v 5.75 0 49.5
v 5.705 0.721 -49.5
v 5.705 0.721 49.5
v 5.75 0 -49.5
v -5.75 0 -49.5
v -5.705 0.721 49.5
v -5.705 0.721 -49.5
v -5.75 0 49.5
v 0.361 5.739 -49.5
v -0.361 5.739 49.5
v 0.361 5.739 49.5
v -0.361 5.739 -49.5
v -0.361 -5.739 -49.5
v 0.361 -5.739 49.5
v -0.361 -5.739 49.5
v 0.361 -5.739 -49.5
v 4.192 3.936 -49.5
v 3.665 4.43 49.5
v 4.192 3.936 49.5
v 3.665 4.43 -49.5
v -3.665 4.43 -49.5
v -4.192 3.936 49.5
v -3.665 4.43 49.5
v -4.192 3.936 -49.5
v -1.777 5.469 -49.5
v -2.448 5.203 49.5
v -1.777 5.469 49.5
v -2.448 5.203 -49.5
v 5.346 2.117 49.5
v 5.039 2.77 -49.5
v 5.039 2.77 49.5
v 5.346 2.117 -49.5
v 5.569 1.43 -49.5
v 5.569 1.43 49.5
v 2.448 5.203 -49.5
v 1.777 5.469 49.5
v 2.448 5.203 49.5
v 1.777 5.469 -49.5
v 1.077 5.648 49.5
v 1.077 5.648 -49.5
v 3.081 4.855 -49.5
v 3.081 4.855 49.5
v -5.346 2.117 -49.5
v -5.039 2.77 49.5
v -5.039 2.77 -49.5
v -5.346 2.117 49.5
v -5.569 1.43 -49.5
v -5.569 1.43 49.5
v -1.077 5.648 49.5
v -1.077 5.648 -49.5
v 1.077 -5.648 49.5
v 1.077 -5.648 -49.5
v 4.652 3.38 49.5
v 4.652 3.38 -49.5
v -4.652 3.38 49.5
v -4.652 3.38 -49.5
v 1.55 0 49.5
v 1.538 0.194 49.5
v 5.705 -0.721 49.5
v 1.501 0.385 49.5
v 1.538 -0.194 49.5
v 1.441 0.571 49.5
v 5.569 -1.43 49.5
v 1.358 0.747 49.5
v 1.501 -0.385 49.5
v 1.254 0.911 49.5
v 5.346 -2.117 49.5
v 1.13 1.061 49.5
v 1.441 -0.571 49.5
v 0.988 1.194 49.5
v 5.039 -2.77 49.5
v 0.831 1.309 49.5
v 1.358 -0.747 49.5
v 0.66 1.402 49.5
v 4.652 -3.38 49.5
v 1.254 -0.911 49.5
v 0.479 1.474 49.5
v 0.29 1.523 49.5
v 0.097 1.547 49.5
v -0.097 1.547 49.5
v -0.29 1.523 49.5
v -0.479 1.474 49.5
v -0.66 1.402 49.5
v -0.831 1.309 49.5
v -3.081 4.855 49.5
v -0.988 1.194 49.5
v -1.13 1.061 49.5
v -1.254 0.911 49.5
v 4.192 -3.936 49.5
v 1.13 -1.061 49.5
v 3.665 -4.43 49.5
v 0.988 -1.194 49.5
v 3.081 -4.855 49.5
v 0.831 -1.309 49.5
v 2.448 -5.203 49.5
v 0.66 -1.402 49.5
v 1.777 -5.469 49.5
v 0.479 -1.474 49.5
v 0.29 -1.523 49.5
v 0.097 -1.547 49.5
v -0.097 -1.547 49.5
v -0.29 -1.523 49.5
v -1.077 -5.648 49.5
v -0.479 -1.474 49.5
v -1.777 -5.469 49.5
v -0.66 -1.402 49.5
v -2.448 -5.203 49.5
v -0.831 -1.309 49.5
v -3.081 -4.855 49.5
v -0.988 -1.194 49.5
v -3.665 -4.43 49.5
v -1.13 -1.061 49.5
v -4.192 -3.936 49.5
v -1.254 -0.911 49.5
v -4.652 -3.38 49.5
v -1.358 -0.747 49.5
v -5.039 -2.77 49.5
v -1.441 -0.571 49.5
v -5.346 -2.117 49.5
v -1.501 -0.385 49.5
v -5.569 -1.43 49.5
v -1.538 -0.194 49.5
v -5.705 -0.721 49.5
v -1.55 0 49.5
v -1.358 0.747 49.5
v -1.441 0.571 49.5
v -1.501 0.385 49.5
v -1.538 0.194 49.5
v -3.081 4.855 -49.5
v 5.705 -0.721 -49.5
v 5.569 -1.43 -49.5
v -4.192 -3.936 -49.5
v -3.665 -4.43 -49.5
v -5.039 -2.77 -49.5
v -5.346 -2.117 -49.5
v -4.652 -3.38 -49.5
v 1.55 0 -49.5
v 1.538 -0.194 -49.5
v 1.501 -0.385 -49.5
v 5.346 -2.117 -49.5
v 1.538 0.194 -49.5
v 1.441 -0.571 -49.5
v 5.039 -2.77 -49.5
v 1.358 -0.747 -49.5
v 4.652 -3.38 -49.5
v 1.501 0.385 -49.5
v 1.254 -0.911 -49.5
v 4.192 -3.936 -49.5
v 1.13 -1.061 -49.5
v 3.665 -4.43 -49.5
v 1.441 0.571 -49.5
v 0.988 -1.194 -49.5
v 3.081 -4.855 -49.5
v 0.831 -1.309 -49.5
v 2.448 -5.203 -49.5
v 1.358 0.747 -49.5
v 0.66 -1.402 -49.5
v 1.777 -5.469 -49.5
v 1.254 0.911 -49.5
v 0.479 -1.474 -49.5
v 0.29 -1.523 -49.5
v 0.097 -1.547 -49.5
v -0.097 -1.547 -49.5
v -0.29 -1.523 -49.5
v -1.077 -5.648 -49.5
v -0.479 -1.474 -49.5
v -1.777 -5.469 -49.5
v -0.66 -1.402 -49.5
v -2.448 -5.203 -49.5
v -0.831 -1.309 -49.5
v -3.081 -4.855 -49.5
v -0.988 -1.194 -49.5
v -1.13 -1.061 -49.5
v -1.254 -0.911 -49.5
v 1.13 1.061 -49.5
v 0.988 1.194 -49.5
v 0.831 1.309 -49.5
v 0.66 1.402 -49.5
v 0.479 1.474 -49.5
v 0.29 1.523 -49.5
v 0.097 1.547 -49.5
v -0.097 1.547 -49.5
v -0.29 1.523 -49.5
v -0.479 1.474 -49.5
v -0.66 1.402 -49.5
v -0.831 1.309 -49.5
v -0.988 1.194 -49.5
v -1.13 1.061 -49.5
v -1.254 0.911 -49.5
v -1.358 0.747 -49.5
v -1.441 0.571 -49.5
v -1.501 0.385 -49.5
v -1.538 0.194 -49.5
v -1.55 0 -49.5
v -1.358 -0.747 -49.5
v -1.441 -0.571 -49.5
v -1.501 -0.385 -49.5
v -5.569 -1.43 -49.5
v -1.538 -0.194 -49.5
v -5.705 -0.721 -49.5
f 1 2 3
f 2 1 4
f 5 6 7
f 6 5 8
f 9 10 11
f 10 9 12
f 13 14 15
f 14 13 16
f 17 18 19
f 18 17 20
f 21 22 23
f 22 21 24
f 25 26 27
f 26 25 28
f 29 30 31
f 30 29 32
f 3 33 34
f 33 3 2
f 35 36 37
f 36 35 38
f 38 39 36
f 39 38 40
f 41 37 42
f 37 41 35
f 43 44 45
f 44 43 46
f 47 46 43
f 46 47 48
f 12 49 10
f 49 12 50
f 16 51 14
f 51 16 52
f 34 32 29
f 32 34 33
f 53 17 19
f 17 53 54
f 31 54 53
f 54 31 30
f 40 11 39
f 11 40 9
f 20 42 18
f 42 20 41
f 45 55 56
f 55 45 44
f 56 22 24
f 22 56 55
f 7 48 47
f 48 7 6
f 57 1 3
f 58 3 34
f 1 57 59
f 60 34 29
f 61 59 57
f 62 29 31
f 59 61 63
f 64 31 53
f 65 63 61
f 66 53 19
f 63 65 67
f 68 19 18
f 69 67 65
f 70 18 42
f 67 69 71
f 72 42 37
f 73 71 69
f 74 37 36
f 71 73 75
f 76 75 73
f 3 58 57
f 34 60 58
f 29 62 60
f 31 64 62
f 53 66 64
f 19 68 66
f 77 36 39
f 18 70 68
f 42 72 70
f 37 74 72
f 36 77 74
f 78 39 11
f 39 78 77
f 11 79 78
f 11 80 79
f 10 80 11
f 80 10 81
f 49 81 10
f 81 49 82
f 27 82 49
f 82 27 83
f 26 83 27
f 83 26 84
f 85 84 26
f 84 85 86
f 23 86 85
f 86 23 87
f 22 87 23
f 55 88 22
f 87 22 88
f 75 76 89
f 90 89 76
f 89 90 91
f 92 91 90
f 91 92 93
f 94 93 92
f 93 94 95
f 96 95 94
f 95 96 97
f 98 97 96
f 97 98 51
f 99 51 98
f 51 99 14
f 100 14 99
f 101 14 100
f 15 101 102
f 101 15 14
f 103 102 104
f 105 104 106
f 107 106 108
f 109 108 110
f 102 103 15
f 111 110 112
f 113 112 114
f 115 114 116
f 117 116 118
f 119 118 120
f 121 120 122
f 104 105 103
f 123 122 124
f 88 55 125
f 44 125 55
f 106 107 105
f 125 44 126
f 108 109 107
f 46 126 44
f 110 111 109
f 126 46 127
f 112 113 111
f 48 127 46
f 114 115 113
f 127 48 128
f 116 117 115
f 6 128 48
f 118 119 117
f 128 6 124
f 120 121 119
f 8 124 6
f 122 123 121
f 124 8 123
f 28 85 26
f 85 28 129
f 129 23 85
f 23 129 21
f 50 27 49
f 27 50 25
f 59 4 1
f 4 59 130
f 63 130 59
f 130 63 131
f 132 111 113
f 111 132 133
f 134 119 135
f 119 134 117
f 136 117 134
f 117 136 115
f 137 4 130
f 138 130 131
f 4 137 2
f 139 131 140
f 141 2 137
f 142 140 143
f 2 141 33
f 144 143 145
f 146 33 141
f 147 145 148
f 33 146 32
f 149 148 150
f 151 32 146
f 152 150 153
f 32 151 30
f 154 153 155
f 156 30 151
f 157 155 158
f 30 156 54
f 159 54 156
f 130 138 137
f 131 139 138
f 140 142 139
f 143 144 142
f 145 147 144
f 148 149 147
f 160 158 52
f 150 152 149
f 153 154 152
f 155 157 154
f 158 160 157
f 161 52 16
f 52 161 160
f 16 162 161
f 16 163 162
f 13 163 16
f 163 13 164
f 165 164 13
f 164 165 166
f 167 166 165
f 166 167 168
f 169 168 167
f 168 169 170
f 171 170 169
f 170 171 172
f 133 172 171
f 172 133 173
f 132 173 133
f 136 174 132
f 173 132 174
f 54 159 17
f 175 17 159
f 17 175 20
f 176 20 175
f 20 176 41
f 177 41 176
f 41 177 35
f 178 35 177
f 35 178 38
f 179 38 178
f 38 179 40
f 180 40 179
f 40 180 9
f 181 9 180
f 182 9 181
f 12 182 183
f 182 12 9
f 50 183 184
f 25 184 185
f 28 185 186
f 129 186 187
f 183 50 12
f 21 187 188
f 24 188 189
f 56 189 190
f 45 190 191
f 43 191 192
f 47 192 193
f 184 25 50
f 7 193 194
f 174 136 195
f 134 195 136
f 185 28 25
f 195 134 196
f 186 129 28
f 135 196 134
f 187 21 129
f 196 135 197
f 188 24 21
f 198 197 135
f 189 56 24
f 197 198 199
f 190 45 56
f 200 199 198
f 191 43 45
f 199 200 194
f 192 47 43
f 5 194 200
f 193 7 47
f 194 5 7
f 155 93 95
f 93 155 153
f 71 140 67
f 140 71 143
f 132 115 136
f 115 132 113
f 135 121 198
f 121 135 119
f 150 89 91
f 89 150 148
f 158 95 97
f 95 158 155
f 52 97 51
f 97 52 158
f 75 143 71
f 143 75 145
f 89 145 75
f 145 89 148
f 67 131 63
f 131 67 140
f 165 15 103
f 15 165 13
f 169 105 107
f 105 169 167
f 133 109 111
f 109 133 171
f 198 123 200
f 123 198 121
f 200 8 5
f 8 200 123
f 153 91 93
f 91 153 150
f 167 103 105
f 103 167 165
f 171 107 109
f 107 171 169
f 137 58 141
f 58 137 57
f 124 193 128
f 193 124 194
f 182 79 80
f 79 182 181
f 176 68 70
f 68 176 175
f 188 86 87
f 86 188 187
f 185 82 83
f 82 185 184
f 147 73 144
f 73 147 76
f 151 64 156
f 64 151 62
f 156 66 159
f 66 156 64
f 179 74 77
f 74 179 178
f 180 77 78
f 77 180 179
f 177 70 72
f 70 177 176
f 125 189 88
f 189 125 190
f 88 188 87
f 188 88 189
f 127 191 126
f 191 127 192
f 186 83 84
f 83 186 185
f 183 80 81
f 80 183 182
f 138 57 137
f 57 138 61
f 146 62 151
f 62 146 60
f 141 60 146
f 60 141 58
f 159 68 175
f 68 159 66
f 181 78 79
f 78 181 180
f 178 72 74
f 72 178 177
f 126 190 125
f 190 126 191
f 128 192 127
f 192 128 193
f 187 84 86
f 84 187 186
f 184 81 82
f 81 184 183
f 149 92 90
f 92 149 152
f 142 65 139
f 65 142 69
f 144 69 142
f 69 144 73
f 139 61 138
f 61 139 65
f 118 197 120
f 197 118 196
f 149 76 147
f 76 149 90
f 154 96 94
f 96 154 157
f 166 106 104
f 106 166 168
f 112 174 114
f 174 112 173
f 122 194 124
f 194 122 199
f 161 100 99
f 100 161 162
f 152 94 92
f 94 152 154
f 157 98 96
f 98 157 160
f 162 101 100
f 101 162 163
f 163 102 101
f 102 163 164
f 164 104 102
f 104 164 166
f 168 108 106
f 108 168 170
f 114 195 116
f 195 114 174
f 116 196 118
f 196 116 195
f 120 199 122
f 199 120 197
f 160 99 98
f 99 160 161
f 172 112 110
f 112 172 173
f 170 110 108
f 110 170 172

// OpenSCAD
$fn = 50;


difference() {
	union() {
		translate(v = [0, 0, -49.5000000000]) {
			cylinder(h = 99, r = 5.7500000000);
		}
	}
	union() {
		translate(v = [0, 0, -100.0000000000]) {
			cylinder(h = 200, r = 1.5500000000);
		}
	}
}
